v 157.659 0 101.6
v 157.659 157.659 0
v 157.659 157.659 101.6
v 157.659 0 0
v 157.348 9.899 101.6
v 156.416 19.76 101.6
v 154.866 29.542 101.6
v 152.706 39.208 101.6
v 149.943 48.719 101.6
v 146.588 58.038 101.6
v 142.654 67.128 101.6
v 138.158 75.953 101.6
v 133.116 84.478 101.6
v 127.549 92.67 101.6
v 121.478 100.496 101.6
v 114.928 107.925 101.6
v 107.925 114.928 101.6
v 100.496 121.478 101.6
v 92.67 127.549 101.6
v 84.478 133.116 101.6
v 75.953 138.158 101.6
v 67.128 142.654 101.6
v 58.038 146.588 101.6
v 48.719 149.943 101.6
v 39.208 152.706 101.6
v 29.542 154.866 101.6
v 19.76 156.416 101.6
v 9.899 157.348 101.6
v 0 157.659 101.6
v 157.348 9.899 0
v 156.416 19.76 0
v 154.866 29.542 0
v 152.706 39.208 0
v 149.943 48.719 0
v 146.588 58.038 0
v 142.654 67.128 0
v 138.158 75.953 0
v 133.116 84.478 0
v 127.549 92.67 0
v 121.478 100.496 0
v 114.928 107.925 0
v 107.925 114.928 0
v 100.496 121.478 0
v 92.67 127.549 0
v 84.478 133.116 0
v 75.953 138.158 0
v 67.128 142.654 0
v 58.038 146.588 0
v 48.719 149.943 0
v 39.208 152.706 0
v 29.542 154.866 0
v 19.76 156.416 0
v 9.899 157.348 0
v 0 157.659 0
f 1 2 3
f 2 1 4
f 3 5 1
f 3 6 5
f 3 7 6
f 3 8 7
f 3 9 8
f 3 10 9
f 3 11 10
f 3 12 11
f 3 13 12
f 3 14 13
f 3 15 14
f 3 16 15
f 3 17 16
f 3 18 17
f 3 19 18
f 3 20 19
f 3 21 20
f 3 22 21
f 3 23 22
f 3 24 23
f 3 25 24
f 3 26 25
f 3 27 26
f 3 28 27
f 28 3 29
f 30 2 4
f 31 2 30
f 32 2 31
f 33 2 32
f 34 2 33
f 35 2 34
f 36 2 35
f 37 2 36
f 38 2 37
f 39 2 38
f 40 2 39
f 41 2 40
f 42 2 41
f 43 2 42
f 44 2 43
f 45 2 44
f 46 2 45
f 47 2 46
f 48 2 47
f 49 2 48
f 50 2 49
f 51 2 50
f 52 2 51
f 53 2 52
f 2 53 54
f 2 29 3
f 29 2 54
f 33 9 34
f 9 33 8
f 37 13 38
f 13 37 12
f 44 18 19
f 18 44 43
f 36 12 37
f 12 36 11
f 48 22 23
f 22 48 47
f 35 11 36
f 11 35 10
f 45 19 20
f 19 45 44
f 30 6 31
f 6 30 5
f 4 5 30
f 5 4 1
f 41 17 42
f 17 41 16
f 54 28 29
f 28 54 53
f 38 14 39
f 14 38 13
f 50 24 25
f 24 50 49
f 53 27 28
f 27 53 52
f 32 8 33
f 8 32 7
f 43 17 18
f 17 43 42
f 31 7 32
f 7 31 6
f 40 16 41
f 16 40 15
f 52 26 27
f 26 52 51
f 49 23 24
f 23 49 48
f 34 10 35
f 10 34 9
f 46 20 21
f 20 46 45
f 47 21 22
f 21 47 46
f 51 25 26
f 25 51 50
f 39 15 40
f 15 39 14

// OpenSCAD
$fn=100;
CIRCUMFERENCE = 39;

radius = CIRCUMFERENCE / (2 * PI);
echo ("radius = ", radius);

diameter = radius * 25.4 * 2;  // meteric diameter

tall = 4.0 * 25.4;

difference()
{
    cube( [ diameter/2, diameter/2, tall],  false);
    cylinder(h = tall * 2+ 1, r = diameter/2, center = true);
}
